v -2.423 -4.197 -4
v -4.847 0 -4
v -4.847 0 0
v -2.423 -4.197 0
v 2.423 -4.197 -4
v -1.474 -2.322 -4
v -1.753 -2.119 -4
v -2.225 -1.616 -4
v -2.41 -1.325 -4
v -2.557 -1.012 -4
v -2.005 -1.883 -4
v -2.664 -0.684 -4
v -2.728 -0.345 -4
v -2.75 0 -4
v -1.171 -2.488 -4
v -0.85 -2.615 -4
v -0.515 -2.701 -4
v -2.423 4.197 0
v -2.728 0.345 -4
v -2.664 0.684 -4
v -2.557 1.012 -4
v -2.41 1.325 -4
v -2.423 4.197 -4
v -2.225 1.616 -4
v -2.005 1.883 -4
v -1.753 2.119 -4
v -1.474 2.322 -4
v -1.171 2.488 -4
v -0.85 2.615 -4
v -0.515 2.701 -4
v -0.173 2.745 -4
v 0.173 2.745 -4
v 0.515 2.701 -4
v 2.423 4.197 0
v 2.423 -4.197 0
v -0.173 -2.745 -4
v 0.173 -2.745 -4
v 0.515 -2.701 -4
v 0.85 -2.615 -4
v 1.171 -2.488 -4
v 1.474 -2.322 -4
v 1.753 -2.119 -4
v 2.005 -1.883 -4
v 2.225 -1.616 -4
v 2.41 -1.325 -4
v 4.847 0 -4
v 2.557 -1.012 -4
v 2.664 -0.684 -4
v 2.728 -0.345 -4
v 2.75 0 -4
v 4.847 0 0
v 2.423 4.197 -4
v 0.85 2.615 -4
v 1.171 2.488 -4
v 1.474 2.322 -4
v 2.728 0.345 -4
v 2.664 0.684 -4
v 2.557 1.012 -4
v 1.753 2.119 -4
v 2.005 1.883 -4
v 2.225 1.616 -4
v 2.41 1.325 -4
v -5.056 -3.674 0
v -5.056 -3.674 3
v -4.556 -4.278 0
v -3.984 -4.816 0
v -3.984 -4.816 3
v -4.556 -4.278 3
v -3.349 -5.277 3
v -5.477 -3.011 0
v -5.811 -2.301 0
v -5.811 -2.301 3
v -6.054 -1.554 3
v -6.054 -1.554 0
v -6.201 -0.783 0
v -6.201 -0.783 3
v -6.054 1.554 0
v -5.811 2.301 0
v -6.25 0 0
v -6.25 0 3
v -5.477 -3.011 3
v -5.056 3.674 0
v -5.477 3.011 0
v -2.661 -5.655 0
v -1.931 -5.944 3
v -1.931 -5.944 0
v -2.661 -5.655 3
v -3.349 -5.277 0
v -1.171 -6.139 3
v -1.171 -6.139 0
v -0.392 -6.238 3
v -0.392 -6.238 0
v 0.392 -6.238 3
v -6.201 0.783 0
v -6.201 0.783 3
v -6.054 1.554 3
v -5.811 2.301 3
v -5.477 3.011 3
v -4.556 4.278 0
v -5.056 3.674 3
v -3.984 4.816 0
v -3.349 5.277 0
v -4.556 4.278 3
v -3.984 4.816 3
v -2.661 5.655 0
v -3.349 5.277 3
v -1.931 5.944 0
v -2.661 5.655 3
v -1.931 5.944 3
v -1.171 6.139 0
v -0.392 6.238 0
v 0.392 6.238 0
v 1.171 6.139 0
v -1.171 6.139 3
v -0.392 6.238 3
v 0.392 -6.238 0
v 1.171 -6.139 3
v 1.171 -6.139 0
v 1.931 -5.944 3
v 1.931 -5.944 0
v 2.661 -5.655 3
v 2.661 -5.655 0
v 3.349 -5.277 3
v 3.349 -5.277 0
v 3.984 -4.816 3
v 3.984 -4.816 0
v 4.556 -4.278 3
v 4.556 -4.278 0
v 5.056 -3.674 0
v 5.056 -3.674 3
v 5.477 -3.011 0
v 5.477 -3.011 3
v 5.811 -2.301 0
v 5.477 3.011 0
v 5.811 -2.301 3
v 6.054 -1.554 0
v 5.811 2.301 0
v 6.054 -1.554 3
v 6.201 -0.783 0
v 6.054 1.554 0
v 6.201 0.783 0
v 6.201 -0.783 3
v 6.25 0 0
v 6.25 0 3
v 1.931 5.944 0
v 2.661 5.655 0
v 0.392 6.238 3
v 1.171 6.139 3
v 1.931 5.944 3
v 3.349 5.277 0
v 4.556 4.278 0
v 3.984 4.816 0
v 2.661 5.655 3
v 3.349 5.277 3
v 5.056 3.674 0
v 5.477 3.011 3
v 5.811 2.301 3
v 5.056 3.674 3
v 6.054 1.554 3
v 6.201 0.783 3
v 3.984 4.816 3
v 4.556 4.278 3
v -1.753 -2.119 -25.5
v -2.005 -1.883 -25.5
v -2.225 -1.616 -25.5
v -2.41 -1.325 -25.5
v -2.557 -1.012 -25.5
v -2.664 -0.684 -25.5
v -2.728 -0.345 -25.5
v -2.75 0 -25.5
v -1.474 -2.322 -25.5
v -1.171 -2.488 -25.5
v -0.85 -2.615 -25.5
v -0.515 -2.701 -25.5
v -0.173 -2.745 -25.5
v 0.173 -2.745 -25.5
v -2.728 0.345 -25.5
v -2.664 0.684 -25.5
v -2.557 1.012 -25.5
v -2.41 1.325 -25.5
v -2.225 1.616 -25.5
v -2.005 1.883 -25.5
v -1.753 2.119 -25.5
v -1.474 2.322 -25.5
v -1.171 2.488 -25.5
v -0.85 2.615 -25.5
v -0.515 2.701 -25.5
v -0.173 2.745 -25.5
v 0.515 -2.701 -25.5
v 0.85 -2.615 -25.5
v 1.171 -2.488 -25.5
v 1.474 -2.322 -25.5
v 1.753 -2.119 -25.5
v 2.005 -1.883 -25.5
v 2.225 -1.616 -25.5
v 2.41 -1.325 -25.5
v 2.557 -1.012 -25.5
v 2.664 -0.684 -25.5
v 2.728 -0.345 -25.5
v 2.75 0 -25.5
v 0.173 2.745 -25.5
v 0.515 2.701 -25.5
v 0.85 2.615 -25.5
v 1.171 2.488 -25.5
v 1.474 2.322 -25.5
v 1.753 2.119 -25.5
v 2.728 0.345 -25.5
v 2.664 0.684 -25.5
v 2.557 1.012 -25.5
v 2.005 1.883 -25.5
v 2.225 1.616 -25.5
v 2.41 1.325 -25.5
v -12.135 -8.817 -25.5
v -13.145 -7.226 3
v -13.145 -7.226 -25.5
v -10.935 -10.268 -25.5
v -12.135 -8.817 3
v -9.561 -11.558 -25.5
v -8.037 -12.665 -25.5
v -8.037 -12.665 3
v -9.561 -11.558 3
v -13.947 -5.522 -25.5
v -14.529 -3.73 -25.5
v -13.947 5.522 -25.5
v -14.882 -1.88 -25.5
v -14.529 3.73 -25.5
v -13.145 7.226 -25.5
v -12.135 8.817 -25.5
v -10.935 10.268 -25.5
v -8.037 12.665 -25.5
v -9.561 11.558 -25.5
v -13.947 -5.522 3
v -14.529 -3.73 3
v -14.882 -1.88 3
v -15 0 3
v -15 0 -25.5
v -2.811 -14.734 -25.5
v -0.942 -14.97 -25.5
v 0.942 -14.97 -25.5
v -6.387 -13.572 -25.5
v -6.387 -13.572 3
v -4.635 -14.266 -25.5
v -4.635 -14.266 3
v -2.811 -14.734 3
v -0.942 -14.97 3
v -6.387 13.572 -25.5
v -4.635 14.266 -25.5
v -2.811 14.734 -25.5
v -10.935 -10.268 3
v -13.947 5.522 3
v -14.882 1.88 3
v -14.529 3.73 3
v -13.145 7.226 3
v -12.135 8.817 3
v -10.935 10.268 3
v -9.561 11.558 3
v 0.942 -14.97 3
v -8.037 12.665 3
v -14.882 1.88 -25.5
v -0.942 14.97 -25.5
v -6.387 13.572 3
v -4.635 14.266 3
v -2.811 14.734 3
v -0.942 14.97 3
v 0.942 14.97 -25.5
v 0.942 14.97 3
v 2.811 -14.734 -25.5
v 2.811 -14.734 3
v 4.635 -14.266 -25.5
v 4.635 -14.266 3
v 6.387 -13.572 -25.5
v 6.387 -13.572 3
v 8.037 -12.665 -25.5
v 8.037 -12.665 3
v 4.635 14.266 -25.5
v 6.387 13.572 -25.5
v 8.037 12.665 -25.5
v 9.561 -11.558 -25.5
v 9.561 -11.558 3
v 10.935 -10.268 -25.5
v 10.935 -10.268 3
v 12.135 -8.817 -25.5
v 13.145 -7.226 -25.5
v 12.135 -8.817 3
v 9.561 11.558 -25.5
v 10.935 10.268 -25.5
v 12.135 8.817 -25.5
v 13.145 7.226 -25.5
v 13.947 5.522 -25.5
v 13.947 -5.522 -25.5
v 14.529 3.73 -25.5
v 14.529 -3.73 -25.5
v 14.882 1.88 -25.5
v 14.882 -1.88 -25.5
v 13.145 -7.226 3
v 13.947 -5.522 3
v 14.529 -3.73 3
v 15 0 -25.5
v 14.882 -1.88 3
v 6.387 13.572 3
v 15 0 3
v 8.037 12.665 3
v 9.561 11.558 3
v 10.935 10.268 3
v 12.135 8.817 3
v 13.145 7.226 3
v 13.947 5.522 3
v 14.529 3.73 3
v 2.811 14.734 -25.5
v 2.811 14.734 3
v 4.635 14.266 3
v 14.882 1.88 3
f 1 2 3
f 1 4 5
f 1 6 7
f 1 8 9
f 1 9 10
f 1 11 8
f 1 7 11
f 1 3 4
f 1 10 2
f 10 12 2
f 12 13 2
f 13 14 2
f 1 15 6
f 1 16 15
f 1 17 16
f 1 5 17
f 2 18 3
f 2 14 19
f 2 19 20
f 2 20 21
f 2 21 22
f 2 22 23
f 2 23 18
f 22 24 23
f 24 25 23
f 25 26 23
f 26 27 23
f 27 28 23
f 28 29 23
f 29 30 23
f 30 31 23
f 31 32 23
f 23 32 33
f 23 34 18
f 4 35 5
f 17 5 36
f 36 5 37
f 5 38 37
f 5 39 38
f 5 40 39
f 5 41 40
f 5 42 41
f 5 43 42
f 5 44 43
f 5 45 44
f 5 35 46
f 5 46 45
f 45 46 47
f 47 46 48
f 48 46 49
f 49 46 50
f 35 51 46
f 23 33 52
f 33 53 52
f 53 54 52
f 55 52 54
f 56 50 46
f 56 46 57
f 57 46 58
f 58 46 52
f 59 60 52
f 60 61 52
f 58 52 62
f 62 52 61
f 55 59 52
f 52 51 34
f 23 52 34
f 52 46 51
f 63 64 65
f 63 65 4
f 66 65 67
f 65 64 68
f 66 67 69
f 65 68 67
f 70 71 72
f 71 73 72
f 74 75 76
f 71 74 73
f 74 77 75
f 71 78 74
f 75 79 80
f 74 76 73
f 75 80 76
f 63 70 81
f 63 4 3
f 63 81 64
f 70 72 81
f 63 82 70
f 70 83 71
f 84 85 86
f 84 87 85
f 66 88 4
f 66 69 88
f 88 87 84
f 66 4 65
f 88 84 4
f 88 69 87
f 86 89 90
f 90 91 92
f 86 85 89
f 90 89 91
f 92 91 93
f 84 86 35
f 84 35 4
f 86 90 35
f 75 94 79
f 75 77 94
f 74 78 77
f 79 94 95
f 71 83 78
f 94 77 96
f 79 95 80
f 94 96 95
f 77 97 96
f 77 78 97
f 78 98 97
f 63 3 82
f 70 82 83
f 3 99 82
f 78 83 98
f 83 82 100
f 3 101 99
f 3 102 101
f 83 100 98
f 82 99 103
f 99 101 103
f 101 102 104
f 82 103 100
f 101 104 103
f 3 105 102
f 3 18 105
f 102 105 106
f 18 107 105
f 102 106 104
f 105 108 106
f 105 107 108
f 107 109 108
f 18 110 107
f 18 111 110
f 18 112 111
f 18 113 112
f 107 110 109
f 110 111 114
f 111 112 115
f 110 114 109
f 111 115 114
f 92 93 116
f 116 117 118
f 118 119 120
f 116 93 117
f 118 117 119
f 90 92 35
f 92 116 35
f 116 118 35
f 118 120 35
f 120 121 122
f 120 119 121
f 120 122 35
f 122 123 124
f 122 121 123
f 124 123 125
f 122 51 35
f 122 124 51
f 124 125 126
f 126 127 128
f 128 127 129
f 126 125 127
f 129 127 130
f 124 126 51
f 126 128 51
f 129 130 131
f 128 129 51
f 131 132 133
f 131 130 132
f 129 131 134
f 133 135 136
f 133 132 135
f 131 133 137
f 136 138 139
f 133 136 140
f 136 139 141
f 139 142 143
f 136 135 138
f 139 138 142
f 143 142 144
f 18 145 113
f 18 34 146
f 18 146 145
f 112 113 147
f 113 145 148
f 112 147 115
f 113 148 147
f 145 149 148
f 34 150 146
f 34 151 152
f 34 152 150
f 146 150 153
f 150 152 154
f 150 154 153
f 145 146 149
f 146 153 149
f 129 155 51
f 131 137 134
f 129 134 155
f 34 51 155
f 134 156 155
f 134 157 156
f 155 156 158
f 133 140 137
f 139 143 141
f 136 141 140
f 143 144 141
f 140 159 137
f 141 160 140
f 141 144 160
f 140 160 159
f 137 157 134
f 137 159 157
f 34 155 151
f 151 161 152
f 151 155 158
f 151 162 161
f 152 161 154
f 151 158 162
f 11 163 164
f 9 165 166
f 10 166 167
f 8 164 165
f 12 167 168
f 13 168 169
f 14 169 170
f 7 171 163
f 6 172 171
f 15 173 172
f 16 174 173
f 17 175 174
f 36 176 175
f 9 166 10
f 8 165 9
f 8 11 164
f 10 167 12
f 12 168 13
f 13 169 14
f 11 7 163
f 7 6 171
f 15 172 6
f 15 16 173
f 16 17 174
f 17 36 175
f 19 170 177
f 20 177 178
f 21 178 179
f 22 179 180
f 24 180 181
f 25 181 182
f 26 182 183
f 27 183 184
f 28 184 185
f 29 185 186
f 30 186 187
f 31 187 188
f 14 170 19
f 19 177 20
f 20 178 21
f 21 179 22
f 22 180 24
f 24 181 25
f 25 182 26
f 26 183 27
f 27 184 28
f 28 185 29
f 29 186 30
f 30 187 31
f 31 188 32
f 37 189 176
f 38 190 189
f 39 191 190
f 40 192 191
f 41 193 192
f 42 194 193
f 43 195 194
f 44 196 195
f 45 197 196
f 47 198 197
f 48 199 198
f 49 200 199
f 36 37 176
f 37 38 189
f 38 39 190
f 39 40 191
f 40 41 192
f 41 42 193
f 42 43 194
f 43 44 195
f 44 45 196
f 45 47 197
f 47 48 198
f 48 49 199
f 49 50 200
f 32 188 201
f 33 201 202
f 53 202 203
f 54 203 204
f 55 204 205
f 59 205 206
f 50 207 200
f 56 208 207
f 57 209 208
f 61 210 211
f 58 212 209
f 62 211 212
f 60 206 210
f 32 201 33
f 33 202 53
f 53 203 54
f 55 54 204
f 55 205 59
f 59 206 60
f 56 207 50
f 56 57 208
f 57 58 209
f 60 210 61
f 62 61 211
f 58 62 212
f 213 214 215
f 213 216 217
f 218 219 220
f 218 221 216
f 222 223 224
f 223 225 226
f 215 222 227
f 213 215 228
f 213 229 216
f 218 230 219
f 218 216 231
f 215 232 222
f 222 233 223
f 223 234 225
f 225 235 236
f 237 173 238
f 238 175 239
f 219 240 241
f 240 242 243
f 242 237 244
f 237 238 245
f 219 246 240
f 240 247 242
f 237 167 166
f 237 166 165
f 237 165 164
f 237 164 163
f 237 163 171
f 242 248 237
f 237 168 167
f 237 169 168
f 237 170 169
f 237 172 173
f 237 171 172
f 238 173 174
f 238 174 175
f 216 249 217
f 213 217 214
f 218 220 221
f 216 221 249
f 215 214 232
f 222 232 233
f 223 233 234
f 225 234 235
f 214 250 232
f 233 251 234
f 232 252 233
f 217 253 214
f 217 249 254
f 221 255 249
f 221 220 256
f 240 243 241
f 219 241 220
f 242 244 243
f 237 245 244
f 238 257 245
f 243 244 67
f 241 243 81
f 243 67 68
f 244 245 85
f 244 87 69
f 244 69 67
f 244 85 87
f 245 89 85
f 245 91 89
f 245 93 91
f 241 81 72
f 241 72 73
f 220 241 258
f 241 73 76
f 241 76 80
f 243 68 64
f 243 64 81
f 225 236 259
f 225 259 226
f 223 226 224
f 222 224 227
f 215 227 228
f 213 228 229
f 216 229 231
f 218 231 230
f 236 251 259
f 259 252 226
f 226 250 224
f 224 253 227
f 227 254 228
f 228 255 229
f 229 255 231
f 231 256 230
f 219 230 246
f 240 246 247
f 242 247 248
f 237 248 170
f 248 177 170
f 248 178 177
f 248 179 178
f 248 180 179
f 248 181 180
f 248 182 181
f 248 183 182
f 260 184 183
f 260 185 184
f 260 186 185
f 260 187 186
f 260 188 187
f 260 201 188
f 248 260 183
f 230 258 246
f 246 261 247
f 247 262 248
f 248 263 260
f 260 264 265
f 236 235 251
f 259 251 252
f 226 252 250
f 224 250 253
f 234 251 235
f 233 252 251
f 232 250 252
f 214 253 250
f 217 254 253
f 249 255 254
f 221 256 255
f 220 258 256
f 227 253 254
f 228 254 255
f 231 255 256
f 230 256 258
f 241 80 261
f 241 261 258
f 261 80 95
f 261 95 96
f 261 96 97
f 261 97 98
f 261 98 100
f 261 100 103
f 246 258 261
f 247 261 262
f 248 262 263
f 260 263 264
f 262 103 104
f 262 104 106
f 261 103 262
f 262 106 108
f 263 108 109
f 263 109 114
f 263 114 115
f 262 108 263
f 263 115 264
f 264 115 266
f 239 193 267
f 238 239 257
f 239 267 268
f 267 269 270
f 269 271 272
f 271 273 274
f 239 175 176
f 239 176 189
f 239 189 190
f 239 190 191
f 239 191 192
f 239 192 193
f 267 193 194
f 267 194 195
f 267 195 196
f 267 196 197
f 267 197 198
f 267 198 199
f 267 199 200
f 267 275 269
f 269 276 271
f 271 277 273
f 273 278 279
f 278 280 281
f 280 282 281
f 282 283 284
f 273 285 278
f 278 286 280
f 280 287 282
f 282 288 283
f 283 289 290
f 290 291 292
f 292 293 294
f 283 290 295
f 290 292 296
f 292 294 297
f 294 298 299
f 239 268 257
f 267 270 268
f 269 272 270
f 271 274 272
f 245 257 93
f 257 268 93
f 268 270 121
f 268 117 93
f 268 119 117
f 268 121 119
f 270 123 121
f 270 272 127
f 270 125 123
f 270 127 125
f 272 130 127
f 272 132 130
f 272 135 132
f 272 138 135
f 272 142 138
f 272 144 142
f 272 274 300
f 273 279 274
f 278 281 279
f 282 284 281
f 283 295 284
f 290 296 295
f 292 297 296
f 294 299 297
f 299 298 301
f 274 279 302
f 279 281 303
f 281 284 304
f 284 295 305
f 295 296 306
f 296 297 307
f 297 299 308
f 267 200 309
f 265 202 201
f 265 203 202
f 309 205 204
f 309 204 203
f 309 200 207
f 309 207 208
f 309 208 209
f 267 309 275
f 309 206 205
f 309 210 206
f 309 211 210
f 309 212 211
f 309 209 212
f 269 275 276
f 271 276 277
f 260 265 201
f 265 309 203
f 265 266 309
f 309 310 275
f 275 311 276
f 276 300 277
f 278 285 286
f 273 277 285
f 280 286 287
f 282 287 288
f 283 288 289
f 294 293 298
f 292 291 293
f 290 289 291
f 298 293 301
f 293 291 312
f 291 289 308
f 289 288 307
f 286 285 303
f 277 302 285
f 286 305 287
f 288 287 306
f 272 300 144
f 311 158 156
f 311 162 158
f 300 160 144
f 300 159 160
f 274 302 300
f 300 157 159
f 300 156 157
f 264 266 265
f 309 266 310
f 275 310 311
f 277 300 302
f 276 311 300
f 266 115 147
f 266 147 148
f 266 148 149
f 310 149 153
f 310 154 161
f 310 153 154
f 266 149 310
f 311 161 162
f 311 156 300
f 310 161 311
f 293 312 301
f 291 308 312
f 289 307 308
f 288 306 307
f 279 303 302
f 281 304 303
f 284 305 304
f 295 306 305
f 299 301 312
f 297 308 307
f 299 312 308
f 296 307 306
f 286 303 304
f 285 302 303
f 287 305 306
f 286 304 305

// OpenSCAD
$fn = 50;


difference() {
	union() {
		translate(v = [0, 0, -25.5000000000]) {
			cylinder(h = 28.5000000000, r = 15.0000000000);
		}
	}
	union() {
		translate(v = [0, 0, 0]) {
			rotate(a = [0, 0, 0]) {
				difference() {
					union() {
						translate(v = [0, 0, -4]) {
							linear_extrude(height = 4) {
								polygon(points = [[4.8468000000, 0.0000000000], [2.4234000000, 4.1974519271], [-2.4234000000, 4.1974519271], [-4.8468000000, 0.0000000000], [-2.4234000000, -4.1974519271], [2.4234000000, -4.1974519271]]);
							}
						}
					}
					union();
				}
			}
		}
		#cylinder(h = 3, r = 6.2500000000);
		#translate(v = [0, 0, -100.0000000000]) {
			cylinder(h = 200, r = 2.7500000000);
		}
	}
}
